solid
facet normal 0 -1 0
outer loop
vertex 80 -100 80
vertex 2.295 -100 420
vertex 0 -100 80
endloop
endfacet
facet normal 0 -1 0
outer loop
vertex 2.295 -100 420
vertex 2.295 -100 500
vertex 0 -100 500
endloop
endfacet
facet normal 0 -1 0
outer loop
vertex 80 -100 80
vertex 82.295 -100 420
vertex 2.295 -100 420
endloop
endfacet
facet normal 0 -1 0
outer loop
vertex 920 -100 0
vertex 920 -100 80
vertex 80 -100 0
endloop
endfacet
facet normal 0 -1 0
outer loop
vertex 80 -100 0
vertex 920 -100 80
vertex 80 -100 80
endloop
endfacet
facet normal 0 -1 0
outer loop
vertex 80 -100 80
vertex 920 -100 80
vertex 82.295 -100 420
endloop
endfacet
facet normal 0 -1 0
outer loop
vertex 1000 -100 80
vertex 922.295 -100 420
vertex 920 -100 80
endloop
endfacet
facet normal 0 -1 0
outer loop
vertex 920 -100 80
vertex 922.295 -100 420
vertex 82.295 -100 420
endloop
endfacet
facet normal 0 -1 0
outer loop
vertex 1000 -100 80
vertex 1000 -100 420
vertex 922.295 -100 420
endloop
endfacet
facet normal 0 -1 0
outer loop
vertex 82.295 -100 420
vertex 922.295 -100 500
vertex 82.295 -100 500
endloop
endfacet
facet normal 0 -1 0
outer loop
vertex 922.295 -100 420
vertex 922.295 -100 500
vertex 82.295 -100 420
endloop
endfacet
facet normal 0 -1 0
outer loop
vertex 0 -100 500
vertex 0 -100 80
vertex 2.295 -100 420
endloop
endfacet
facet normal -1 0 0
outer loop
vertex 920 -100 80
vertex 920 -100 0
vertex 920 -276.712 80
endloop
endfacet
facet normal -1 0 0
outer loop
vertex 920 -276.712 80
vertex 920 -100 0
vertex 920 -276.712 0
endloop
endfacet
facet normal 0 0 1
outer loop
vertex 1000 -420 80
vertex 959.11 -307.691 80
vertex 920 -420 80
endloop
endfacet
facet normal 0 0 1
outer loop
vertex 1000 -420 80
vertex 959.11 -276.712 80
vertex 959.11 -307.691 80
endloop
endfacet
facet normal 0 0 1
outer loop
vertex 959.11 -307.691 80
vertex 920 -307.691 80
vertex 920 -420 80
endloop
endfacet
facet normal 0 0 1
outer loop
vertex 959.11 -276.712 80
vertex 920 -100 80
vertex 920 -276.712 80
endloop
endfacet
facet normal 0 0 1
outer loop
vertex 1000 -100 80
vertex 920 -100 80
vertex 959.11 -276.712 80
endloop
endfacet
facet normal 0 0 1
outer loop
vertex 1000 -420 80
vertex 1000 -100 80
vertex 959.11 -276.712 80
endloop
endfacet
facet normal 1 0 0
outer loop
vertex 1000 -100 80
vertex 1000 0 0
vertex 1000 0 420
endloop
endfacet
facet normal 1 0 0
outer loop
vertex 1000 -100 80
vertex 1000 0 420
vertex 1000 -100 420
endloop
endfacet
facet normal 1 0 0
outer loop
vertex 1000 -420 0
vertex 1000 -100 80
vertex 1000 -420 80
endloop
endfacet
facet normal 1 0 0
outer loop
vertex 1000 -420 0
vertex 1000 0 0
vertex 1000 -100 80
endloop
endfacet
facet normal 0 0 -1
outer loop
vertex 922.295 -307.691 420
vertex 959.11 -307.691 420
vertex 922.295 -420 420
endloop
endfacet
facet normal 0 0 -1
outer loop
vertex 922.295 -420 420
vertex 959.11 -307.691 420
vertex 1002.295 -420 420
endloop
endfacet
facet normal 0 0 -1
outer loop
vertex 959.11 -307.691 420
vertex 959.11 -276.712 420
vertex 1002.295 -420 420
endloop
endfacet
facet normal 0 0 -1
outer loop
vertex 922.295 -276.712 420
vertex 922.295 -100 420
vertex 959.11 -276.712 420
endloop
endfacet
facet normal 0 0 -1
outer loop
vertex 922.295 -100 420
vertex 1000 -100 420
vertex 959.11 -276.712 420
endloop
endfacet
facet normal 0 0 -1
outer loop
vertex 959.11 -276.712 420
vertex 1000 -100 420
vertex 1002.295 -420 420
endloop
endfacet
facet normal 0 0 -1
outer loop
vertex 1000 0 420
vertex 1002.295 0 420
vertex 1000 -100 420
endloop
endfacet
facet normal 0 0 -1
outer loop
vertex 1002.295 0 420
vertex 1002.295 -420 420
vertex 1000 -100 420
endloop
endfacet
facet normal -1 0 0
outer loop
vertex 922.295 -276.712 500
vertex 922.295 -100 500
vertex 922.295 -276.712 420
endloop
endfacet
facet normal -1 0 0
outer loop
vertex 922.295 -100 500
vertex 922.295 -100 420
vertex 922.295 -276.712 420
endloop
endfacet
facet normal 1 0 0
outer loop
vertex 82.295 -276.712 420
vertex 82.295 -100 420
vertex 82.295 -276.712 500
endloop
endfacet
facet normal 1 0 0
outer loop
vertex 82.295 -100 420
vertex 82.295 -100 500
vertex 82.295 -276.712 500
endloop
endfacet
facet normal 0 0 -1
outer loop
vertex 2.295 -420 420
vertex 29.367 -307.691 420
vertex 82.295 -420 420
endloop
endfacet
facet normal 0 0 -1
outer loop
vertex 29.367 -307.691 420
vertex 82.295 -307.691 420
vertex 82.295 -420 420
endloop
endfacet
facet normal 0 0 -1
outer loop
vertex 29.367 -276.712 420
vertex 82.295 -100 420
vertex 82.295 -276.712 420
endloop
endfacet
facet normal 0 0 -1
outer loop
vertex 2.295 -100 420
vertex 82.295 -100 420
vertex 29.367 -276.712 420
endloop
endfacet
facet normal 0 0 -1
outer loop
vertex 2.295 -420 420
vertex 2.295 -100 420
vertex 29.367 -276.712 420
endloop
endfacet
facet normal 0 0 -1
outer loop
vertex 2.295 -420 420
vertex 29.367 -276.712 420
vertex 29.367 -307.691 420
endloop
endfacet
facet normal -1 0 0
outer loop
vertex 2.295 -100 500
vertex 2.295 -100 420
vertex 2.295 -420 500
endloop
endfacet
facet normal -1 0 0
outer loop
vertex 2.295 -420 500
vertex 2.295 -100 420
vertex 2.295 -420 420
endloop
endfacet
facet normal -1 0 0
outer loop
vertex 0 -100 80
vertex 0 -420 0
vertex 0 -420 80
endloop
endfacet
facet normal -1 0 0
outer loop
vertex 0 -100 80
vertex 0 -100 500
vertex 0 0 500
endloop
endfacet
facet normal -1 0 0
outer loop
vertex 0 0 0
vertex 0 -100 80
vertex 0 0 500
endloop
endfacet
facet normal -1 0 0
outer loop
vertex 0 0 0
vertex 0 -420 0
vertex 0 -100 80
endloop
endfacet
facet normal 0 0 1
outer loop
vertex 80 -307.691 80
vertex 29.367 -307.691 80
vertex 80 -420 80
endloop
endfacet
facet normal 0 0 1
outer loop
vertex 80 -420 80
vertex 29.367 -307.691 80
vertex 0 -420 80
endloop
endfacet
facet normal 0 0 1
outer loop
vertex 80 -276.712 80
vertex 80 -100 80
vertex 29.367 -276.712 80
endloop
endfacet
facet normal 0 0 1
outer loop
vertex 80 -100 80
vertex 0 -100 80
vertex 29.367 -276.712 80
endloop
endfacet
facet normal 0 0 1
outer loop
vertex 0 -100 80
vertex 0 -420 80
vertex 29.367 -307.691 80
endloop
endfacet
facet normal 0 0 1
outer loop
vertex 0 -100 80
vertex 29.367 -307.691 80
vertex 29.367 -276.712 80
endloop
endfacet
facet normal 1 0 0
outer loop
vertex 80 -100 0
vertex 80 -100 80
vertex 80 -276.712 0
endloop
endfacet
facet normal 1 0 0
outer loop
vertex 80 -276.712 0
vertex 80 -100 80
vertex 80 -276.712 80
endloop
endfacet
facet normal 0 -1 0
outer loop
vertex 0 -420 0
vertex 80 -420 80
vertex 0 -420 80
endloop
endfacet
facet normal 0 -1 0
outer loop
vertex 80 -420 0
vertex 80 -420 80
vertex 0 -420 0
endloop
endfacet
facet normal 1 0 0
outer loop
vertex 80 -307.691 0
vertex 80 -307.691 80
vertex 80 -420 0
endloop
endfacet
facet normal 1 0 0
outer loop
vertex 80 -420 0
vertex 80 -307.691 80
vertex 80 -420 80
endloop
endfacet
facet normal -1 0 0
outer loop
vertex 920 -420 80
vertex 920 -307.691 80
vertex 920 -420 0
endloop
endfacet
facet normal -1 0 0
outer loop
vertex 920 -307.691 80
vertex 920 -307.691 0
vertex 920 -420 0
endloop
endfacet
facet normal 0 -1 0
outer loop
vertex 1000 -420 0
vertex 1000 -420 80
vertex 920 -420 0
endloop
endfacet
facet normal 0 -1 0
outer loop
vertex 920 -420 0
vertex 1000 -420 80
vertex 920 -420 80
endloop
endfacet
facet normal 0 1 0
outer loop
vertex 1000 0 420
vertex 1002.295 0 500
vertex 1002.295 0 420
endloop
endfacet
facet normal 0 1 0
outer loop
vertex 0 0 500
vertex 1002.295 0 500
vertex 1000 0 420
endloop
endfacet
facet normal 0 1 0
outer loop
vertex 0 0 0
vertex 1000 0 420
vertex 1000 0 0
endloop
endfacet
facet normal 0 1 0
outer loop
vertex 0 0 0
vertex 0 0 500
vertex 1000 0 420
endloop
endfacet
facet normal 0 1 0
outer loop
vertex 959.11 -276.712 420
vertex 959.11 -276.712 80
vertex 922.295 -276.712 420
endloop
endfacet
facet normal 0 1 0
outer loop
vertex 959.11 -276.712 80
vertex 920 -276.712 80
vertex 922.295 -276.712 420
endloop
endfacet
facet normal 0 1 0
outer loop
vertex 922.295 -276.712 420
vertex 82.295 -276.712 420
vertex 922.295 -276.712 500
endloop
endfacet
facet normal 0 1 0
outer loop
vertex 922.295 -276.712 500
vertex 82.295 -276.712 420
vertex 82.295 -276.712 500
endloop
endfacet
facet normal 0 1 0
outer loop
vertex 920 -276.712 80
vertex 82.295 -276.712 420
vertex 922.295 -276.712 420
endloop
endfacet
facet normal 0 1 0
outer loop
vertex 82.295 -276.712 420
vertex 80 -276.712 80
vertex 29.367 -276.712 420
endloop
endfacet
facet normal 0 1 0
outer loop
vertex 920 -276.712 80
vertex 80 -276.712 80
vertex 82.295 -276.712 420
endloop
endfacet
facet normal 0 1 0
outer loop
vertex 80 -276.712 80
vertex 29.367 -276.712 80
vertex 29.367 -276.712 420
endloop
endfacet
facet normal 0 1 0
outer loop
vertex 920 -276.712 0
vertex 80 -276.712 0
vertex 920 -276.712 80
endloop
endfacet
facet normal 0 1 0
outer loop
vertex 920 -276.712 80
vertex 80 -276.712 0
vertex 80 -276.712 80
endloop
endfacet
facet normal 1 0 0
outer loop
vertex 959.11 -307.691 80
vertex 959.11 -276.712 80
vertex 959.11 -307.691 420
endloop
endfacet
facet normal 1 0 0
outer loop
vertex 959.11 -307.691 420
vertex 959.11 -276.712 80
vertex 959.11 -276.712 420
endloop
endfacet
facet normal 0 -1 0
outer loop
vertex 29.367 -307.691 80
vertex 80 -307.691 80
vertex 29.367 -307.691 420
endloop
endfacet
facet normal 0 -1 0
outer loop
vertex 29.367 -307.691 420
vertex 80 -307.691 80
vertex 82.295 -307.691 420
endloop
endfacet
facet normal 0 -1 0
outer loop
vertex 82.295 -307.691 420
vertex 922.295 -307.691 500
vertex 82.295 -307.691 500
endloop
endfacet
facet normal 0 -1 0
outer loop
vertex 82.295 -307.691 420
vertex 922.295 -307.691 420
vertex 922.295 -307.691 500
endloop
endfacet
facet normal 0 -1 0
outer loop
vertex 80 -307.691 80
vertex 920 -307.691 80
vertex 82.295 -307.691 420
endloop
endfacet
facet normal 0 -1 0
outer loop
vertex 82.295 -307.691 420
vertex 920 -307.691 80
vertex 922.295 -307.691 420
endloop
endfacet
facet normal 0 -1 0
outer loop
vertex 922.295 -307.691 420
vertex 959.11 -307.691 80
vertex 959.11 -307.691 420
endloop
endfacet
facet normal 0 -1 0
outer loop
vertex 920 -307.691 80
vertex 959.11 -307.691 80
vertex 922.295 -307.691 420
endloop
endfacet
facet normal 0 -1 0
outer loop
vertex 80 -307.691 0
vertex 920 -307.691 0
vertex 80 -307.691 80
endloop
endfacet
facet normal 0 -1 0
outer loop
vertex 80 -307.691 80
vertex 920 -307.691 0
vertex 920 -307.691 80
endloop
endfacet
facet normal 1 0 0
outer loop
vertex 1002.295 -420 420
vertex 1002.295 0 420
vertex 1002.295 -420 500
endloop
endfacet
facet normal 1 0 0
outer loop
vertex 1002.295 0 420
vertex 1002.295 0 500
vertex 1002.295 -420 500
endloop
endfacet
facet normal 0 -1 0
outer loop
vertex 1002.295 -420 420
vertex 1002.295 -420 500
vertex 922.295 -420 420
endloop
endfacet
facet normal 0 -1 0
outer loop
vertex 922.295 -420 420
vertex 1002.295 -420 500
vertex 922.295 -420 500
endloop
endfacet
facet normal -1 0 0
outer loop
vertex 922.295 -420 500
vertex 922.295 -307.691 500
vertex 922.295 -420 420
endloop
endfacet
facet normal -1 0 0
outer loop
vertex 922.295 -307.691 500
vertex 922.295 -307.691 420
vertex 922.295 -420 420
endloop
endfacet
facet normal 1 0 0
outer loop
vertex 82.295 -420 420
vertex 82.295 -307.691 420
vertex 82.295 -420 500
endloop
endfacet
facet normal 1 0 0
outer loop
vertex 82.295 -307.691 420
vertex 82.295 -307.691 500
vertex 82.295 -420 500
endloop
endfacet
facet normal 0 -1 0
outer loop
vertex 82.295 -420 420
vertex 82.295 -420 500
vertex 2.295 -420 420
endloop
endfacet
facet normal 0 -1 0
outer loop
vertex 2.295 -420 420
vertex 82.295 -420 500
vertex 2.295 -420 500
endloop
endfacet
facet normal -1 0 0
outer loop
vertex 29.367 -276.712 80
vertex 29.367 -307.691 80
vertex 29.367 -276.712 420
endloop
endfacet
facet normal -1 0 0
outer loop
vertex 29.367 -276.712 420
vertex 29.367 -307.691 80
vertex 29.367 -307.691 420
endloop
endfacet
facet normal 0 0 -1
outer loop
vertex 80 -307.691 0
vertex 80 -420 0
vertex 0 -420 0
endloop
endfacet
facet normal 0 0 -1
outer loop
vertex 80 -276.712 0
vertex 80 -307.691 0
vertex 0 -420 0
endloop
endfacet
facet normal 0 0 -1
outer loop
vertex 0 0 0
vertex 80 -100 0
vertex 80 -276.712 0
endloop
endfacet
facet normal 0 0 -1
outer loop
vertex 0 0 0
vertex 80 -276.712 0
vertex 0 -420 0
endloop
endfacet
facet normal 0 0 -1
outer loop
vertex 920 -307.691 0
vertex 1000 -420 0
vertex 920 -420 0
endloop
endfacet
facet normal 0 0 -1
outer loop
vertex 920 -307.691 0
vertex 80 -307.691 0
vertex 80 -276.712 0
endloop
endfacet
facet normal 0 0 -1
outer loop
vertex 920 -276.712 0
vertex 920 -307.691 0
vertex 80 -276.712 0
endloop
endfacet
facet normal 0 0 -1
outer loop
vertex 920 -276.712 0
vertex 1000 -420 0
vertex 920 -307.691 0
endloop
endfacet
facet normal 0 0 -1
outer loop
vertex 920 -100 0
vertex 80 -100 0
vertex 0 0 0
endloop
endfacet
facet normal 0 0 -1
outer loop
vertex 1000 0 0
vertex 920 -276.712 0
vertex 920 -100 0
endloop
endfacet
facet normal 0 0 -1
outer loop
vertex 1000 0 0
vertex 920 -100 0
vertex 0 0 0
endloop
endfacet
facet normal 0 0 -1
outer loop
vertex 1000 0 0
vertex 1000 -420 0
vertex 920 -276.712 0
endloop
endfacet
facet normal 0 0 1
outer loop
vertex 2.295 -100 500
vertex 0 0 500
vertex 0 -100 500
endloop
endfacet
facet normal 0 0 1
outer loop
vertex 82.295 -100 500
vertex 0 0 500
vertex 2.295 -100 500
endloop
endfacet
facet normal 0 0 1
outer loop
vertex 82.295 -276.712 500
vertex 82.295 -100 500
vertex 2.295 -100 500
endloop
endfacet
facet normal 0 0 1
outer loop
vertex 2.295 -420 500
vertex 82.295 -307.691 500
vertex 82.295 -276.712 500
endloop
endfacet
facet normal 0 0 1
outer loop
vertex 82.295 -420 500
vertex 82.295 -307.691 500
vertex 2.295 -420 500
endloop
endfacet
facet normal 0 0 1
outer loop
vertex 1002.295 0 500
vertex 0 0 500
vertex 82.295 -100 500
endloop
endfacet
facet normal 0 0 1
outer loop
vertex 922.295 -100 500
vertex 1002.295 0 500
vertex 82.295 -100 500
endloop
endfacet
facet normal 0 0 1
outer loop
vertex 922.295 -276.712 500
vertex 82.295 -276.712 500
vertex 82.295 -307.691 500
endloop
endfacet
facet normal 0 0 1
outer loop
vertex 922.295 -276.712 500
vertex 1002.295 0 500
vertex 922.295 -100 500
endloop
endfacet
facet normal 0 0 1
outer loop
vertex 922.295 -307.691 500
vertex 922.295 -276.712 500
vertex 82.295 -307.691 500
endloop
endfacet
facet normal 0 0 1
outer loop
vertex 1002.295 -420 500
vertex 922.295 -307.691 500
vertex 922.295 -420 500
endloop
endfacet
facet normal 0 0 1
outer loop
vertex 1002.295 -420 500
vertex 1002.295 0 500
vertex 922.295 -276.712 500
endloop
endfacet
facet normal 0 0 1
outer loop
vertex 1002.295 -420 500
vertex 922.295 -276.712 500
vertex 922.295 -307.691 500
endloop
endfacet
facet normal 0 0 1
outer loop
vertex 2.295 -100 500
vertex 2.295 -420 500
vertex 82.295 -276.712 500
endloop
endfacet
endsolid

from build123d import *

# Parameters (mm, degrees)
SKETCH_W     = 1000
SKETCH_H     = 500
PAD_DEPTH    = 100
SKETCH001_W  = 80
SKETCH001_H  = 80
PAD001_DEPTH = 420
SKETCH002_W  = 929.743311
SKETCH002_H  = 30.979035
PAD002_DEPTH = 500


with BuildPart() as part:
    # Sketch → Pad (new body)
    with BuildSketch(Plane.XZ):
        with Locations((500, 250)):
            Rectangle(SKETCH_W, SKETCH_H)
    extrude(amount=PAD_DEPTH)

    # Sketch001 → Pad001 (join)
    with BuildSketch(Plane.XZ):
        with Locations((42.294634, 460)):
            Rectangle(SKETCH001_W, SKETCH001_H)
        with Locations((40, 40)):
            Rectangle(SKETCH001_W, SKETCH001_H)
        with Locations((962.294634, 460)):
            Rectangle(SKETCH001_W, SKETCH001_H)
        with Locations((960, 40)):
            Rectangle(SKETCH001_W, SKETCH001_H)
    extrude(amount=PAD001_DEPTH)

    # Sketch002 (on Face16 of Pad001) → Pad002 (join)
    with BuildSketch(Plane(origin=(0, 0, 0), x_dir=(1, 0, 0), z_dir=(0, 0, -1))):
        with Locations((494.238269, 292.201278)):
            Rectangle(SKETCH002_W, SKETCH002_H)
    extrude(amount=-PAD002_DEPTH)


solid = part.part
